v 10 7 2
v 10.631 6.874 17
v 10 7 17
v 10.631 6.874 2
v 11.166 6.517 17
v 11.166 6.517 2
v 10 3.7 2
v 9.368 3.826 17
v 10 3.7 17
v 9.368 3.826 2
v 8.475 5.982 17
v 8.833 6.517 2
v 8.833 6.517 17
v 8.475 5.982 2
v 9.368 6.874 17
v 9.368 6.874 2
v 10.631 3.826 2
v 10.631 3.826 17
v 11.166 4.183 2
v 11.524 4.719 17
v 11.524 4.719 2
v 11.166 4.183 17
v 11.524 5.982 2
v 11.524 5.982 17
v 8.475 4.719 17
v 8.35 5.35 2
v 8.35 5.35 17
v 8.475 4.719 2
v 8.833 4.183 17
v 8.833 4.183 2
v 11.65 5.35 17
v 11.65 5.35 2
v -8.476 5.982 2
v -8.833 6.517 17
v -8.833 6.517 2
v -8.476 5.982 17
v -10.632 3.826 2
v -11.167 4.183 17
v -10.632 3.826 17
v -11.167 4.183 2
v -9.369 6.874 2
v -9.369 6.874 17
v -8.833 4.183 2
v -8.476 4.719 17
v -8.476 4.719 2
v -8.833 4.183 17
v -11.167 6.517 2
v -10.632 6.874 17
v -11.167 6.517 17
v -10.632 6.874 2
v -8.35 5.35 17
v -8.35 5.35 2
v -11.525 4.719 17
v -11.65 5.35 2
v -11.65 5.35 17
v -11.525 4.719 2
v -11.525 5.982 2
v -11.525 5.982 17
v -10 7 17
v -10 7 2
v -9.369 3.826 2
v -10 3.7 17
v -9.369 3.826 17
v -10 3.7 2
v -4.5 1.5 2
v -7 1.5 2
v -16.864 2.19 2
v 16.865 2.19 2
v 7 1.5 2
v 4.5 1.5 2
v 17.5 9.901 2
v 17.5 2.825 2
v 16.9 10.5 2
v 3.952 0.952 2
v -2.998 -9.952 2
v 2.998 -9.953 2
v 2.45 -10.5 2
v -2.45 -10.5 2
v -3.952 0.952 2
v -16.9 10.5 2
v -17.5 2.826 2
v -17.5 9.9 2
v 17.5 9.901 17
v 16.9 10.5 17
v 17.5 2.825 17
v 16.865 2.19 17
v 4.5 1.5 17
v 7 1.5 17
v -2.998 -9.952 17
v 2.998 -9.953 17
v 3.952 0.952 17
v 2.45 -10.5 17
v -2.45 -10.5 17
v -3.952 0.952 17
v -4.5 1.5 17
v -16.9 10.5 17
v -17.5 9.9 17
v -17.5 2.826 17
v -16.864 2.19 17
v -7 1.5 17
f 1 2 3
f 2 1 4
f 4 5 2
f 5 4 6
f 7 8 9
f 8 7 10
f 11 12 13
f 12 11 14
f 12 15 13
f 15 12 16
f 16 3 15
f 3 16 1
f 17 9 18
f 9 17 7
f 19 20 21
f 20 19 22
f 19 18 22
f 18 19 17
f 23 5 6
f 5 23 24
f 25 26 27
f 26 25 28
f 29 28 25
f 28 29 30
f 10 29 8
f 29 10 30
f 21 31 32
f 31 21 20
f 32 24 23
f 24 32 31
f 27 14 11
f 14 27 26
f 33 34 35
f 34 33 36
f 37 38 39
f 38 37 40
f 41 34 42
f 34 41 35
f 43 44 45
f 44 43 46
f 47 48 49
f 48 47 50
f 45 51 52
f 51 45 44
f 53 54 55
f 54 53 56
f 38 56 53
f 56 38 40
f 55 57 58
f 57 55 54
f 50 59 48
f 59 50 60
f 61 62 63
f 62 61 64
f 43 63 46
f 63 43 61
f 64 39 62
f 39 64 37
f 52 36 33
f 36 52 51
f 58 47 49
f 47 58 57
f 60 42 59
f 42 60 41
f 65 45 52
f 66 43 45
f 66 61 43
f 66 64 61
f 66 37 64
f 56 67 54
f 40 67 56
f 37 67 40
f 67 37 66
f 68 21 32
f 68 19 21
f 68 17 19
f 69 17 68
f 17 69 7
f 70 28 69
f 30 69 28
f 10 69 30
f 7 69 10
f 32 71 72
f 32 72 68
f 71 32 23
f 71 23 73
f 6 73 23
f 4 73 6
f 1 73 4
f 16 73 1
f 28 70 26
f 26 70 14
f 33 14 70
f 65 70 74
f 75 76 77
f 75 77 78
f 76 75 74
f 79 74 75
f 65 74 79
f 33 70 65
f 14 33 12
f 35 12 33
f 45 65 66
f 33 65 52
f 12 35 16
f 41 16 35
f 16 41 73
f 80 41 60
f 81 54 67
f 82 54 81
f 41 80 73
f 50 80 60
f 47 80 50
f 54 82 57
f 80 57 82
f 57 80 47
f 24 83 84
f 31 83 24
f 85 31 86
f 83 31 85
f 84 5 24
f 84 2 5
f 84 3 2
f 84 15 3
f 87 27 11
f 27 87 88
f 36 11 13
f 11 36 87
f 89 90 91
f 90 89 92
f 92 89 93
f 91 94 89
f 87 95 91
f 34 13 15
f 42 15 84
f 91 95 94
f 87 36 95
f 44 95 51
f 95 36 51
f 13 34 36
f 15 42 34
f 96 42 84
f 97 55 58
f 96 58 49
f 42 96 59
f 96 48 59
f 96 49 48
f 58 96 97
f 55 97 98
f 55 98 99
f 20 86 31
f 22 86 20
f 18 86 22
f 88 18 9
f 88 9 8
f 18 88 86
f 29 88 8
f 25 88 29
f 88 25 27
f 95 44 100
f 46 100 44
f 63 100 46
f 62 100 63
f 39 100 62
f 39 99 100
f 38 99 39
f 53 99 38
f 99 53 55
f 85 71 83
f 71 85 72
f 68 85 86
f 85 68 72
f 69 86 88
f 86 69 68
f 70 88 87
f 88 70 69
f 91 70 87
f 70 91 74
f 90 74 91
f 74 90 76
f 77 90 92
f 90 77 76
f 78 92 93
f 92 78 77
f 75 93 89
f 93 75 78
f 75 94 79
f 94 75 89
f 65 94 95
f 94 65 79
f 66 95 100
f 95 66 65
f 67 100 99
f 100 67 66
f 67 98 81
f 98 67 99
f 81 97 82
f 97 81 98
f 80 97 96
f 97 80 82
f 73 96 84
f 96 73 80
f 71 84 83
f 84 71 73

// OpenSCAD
// Generated by inkscape 0.92.4 + inkscape-paths2openscad 0.25
// Mon May 13 02:03:46 2019 from "stollen35x21.svg"

// Module names are of the form poly_<inkscape-path-id>().  As a result,
// you can associate a polygon in this OpenSCAD program with the corresponding
// SVG element in the Inkscape document by looking for the XML element with
// the attribute id="inkscape-path-id".

// fudge value is used to ensure that subtracted solids are a tad taller
// in the z dimension than the polygon being subtracted from.  This helps
// keep the resulting .stl file manifold.
fudge = 0.1;
zsize = 15;
line_fn = 4;
min_line_width = 1.0;
line_width_scale = 1.0;
function min_line_mm(w) = max(min_line_width, w * line_width_scale) * 96/25.4;


path919_0_center = [0.000000,0.000000];
path919_0_points = [[-63.872077,-39.685551],[-66.141608,-37.416020],[-66.141608,-10.679689],[-63.739265,-8.277345],[-26.456058,-5.669922],[-17.006838,-5.669922],[-14.936525,-3.599610],[-11.331056,37.613285],[-9.258790,39.685551],[9.260743,39.685551],[11.331056,37.617191],[14.936525,-3.597657],[17.008793,-5.669922],[26.456054,-5.669922],[63.741218,-8.277345],[66.141608,-10.677736],[66.141608,-37.419926],[63.875988,-39.685551],[-63.872077,-39.685551]];
module poly_path919(h, w, s, res=line_fn)
{
  scale([25.4/96, -25.4/96, 1]) union()
  {
    translate (path919_0_center) linear_extrude(height=h, convexity=10, scale=0.01*s)
      translate (-path919_0_center) polygon(path919_0_points);
  }
}

rect817_0_center = [37.793950,-20.220706];
rect817_0_points = [[37.793945,-26.457035],[40.180502,-25.982352],[42.203728,-24.630488],[43.555592,-22.607262],[44.030276,-20.220705],[43.555592,-17.834148],[42.203728,-15.810923],[40.180502,-14.459059],[37.793945,-13.984376],[35.407391,-14.459062],[33.384168,-15.810926],[32.032307,-17.834150],[31.557624,-20.220705],[32.032307,-22.607260],[33.384168,-24.630485],[35.407391,-25.982349],[37.793945,-26.457035],[37.793945,-26.457035]];
rect817_1_center = [-37.795902,-20.220706];
rect817_1_points = [[-37.795902,-26.457035],[-35.409345,-25.982351],[-33.386120,-24.630487],[-32.034256,-22.607262],[-31.559573,-20.220705],[-32.034257,-17.834149],[-33.386120,-15.810923],[-35.409346,-14.459060],[-37.795902,-13.984376],[-40.182459,-14.459060],[-42.205684,-15.810923],[-43.557548,-17.834148],[-44.032232,-20.220705],[-43.557548,-22.607262],[-42.205685,-24.630488],[-40.182459,-25.982351],[-37.795902,-26.457035],[-37.795902,-26.457035]];
module poly_rect817(h, w, s, res=line_fn)
{
  scale([25.4/96, -25.4/96, 1]) union()
  {
    translate (rect817_0_center) linear_extrude(height=h, convexity=10, scale=0.01*s)
      translate (-rect817_0_center) polygon(rect817_0_points);
    translate (rect817_1_center) linear_extrude(height=h, convexity=10, scale=0.01*s)
      translate (-rect817_1_center) polygon(rect817_1_points);
  }
}

module stollen35x21(h)
{
  difference()
  {
    union()
    {
      translate ([0,0,2]) poly_path919(15, min_line_mm(0.75590551), 100.0);
    }
    union()
    {
      translate ([0,0,0]) poly_rect817(20, min_line_mm(0.75590551), 100.0);
    }
  }
}

stollen35x21(zsize);
